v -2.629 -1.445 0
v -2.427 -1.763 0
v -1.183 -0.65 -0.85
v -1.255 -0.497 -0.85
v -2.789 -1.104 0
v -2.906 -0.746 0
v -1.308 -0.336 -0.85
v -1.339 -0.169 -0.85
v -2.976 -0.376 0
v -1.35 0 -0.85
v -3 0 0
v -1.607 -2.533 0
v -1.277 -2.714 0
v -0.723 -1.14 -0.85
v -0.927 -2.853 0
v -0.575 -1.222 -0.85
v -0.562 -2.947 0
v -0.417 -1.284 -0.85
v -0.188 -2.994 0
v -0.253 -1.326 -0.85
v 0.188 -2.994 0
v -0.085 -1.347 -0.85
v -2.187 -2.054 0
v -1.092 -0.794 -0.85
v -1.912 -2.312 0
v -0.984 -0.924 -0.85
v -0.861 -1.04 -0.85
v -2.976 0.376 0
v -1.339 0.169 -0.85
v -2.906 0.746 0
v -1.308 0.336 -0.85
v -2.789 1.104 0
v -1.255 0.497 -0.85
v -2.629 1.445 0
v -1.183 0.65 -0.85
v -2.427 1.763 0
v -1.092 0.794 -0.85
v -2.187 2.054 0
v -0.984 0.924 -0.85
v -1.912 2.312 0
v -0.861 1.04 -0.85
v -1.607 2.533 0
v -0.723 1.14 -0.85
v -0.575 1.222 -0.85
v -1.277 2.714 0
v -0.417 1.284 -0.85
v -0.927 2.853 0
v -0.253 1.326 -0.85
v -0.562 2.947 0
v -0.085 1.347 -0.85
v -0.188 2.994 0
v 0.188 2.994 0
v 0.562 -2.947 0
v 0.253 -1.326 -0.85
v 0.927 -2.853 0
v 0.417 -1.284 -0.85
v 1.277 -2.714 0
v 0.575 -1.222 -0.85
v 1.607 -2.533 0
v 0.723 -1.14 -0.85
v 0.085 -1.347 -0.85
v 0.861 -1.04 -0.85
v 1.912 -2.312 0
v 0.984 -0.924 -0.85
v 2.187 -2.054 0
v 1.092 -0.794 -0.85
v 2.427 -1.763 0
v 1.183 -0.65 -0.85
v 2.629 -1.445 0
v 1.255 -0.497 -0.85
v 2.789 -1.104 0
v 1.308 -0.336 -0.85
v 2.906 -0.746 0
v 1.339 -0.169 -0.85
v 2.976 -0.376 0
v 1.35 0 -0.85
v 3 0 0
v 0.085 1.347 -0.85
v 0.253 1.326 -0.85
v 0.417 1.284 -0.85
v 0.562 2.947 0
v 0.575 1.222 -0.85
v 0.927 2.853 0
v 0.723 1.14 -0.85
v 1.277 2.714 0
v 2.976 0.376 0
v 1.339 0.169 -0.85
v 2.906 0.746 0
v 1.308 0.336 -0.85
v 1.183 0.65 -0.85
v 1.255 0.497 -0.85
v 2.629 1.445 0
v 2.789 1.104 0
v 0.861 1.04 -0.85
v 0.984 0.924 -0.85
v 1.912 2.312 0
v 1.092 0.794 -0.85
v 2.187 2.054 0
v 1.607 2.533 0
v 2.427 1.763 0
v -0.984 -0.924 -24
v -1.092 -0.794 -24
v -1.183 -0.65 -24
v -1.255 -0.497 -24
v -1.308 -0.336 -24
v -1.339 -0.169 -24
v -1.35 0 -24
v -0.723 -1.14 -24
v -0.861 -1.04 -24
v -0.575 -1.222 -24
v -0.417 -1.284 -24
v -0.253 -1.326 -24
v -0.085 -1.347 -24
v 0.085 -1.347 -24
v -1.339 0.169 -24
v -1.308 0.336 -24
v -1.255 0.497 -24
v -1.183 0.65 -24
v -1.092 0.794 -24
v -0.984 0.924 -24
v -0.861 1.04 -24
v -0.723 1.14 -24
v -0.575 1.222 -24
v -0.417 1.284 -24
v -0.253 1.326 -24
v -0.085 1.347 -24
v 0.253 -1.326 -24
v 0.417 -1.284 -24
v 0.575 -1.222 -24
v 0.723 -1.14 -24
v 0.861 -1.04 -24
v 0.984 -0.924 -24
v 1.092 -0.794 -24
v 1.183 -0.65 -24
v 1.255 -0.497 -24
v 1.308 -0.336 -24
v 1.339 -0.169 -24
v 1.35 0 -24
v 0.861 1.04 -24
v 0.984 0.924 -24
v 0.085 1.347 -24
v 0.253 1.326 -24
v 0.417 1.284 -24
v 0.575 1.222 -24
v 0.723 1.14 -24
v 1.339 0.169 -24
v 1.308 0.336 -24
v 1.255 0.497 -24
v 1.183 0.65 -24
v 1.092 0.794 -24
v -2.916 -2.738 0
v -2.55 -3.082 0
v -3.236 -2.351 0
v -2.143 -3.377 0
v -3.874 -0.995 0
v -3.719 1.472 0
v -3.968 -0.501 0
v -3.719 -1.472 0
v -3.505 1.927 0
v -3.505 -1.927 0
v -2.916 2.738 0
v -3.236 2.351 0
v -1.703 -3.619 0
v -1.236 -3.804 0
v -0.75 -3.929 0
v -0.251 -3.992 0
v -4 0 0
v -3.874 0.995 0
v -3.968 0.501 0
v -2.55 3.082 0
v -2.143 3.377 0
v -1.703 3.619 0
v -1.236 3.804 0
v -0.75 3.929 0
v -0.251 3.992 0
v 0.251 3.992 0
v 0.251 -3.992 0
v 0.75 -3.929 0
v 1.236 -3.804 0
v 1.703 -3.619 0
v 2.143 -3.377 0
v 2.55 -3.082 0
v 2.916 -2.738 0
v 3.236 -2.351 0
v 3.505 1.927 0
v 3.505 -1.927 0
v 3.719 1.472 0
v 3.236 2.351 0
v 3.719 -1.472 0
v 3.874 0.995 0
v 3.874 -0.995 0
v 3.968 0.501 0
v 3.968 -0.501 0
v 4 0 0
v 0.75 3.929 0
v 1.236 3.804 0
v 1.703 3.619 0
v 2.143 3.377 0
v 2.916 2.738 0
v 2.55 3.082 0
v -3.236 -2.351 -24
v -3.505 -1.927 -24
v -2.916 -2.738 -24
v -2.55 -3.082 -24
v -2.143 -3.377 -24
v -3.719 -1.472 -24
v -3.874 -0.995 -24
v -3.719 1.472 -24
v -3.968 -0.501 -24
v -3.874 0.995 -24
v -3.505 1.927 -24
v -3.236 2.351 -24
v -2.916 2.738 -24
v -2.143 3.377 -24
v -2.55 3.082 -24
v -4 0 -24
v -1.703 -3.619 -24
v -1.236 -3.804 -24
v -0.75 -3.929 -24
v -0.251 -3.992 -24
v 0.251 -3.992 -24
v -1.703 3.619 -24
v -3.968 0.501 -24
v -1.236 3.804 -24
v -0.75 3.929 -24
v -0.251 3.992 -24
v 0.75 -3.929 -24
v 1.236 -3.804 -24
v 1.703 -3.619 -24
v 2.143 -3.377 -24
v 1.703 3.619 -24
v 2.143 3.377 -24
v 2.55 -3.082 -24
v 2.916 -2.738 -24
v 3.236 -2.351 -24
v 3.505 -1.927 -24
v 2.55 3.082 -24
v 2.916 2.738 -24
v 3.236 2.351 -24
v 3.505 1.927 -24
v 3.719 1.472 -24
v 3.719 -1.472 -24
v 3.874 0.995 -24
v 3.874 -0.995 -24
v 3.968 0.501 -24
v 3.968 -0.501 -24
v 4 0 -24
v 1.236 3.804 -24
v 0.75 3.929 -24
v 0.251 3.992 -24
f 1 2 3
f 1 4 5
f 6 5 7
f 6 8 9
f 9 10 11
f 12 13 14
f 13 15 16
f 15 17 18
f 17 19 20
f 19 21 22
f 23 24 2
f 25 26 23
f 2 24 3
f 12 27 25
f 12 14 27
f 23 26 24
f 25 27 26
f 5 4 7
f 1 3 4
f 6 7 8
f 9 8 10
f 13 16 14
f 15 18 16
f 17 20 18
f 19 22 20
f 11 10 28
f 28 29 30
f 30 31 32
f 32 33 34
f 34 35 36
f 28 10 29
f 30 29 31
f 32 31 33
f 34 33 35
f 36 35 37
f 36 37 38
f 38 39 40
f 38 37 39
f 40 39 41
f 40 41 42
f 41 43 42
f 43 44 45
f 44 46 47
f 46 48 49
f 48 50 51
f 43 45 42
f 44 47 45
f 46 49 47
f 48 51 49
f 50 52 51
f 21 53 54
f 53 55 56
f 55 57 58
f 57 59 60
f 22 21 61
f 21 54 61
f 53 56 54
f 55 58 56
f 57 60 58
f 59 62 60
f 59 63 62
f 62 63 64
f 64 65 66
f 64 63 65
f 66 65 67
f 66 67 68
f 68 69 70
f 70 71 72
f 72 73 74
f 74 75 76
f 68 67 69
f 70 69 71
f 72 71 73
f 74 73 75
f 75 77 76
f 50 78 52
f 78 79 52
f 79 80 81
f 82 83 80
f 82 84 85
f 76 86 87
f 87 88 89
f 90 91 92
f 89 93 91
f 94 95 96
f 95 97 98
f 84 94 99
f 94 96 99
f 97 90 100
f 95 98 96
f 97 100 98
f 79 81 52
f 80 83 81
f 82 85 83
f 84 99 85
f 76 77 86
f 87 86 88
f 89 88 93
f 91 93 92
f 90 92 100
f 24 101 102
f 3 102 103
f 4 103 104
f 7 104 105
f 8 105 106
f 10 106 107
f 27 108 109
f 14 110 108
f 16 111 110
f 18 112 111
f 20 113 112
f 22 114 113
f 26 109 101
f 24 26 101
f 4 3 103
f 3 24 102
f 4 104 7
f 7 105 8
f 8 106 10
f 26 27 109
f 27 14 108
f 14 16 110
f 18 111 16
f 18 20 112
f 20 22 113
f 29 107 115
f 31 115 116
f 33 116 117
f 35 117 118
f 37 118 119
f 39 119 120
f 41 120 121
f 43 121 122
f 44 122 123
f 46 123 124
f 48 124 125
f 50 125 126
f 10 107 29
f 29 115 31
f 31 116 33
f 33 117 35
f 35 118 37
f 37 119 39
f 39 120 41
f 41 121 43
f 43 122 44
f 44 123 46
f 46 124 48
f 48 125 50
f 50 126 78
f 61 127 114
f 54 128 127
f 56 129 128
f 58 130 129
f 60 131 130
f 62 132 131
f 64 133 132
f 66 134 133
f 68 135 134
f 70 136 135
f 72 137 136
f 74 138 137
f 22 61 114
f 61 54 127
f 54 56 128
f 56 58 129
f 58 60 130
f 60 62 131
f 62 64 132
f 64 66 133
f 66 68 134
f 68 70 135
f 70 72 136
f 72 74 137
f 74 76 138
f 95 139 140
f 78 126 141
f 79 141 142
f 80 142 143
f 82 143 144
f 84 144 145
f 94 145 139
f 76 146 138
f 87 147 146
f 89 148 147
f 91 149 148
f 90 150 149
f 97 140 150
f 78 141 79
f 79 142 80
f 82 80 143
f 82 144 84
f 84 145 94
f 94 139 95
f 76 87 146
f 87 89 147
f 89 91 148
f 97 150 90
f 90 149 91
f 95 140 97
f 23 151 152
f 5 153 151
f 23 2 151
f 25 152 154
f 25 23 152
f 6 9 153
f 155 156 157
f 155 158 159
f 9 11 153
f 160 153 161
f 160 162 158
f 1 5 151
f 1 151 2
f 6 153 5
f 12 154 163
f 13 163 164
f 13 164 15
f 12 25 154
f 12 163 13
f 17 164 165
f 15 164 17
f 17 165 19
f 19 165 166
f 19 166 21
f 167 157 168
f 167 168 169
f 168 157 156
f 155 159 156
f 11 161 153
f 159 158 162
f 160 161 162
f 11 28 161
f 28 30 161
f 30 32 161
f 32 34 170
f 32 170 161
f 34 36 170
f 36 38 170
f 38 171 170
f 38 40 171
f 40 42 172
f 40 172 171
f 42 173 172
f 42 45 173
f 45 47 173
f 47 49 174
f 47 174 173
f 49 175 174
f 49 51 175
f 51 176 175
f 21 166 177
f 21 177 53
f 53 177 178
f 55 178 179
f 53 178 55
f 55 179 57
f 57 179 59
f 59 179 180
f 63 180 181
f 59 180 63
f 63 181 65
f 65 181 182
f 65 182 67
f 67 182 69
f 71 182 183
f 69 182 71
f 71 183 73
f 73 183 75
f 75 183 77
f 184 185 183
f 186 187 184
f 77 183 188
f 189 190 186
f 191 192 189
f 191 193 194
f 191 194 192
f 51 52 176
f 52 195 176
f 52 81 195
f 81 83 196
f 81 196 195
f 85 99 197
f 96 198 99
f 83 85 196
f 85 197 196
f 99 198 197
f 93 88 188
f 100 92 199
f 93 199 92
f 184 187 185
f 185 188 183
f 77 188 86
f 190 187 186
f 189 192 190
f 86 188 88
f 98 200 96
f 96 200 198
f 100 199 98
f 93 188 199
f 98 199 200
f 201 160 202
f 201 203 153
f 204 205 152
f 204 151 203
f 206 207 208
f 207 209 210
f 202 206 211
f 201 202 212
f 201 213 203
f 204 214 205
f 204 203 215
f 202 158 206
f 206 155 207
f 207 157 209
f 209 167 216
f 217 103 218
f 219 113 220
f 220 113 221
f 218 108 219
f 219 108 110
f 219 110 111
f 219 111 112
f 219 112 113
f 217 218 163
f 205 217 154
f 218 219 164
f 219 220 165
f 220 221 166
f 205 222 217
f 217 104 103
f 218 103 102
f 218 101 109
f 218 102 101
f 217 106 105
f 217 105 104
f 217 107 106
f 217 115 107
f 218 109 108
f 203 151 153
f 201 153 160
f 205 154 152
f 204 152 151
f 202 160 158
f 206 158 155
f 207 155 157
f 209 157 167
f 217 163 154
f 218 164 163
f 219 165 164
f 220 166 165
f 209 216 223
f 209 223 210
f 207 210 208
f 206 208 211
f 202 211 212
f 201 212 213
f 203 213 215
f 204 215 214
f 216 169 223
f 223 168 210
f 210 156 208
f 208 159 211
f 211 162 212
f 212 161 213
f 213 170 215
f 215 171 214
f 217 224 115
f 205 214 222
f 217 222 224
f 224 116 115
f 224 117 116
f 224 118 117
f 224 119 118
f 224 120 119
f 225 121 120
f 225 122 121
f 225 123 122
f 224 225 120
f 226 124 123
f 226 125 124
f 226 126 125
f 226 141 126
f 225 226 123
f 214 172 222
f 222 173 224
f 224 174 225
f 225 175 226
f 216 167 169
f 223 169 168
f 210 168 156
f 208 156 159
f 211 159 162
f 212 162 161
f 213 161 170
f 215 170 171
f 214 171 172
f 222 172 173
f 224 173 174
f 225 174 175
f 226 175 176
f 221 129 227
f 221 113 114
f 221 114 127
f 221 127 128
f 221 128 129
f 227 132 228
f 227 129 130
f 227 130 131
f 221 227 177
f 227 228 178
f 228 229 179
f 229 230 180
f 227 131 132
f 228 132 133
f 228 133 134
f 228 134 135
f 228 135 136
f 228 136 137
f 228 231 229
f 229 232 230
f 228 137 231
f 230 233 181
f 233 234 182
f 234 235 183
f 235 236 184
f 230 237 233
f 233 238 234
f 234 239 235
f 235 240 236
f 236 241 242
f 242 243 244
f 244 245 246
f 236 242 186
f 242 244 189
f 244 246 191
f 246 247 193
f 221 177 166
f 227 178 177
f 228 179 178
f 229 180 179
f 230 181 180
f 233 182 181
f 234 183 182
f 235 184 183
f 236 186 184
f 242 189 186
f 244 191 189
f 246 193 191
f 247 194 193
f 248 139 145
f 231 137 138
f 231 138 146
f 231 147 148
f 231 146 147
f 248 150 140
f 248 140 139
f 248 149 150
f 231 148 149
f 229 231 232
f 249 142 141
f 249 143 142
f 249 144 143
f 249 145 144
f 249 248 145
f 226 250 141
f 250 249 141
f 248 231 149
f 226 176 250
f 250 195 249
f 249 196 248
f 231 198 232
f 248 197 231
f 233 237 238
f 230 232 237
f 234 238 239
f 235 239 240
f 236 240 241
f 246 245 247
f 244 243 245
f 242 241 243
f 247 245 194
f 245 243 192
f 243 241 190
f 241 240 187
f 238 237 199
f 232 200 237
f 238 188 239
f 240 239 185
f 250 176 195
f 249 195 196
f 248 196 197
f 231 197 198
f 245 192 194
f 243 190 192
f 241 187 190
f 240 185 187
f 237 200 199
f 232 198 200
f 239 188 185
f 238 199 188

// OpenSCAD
$fn = 50;

difference() {
	union() {
		translate(v = [0, 0, -24.0]) {
			cylinder(h = 27, r = 4.0);
		}
	}
	union() {
		translate(v = [0, 0, 0]) {
			rotate(a = [0, 0, 0]) {
				difference() {
					union() {
						translate(v = [0, 0, -27.0]) {
							cylinder(h = 27, r = 1.0);
						}
						translate(v = [0, 0, -0.85]) {
							cylinder(h = 0.85, r1 = 1.35, r2 = 3.0);
						}
						translate(v = [0, 0, -27.0]) {
							cylinder(h = 27, r = 1.35);
						}
						translate(v = [0, 0, -27.0]) {
							cylinder(h = 27, r = 1.0);
						}
					}
					union();
				}
			}
		}
		#cylinder(h = 3, r = 5.0);
	}
}
